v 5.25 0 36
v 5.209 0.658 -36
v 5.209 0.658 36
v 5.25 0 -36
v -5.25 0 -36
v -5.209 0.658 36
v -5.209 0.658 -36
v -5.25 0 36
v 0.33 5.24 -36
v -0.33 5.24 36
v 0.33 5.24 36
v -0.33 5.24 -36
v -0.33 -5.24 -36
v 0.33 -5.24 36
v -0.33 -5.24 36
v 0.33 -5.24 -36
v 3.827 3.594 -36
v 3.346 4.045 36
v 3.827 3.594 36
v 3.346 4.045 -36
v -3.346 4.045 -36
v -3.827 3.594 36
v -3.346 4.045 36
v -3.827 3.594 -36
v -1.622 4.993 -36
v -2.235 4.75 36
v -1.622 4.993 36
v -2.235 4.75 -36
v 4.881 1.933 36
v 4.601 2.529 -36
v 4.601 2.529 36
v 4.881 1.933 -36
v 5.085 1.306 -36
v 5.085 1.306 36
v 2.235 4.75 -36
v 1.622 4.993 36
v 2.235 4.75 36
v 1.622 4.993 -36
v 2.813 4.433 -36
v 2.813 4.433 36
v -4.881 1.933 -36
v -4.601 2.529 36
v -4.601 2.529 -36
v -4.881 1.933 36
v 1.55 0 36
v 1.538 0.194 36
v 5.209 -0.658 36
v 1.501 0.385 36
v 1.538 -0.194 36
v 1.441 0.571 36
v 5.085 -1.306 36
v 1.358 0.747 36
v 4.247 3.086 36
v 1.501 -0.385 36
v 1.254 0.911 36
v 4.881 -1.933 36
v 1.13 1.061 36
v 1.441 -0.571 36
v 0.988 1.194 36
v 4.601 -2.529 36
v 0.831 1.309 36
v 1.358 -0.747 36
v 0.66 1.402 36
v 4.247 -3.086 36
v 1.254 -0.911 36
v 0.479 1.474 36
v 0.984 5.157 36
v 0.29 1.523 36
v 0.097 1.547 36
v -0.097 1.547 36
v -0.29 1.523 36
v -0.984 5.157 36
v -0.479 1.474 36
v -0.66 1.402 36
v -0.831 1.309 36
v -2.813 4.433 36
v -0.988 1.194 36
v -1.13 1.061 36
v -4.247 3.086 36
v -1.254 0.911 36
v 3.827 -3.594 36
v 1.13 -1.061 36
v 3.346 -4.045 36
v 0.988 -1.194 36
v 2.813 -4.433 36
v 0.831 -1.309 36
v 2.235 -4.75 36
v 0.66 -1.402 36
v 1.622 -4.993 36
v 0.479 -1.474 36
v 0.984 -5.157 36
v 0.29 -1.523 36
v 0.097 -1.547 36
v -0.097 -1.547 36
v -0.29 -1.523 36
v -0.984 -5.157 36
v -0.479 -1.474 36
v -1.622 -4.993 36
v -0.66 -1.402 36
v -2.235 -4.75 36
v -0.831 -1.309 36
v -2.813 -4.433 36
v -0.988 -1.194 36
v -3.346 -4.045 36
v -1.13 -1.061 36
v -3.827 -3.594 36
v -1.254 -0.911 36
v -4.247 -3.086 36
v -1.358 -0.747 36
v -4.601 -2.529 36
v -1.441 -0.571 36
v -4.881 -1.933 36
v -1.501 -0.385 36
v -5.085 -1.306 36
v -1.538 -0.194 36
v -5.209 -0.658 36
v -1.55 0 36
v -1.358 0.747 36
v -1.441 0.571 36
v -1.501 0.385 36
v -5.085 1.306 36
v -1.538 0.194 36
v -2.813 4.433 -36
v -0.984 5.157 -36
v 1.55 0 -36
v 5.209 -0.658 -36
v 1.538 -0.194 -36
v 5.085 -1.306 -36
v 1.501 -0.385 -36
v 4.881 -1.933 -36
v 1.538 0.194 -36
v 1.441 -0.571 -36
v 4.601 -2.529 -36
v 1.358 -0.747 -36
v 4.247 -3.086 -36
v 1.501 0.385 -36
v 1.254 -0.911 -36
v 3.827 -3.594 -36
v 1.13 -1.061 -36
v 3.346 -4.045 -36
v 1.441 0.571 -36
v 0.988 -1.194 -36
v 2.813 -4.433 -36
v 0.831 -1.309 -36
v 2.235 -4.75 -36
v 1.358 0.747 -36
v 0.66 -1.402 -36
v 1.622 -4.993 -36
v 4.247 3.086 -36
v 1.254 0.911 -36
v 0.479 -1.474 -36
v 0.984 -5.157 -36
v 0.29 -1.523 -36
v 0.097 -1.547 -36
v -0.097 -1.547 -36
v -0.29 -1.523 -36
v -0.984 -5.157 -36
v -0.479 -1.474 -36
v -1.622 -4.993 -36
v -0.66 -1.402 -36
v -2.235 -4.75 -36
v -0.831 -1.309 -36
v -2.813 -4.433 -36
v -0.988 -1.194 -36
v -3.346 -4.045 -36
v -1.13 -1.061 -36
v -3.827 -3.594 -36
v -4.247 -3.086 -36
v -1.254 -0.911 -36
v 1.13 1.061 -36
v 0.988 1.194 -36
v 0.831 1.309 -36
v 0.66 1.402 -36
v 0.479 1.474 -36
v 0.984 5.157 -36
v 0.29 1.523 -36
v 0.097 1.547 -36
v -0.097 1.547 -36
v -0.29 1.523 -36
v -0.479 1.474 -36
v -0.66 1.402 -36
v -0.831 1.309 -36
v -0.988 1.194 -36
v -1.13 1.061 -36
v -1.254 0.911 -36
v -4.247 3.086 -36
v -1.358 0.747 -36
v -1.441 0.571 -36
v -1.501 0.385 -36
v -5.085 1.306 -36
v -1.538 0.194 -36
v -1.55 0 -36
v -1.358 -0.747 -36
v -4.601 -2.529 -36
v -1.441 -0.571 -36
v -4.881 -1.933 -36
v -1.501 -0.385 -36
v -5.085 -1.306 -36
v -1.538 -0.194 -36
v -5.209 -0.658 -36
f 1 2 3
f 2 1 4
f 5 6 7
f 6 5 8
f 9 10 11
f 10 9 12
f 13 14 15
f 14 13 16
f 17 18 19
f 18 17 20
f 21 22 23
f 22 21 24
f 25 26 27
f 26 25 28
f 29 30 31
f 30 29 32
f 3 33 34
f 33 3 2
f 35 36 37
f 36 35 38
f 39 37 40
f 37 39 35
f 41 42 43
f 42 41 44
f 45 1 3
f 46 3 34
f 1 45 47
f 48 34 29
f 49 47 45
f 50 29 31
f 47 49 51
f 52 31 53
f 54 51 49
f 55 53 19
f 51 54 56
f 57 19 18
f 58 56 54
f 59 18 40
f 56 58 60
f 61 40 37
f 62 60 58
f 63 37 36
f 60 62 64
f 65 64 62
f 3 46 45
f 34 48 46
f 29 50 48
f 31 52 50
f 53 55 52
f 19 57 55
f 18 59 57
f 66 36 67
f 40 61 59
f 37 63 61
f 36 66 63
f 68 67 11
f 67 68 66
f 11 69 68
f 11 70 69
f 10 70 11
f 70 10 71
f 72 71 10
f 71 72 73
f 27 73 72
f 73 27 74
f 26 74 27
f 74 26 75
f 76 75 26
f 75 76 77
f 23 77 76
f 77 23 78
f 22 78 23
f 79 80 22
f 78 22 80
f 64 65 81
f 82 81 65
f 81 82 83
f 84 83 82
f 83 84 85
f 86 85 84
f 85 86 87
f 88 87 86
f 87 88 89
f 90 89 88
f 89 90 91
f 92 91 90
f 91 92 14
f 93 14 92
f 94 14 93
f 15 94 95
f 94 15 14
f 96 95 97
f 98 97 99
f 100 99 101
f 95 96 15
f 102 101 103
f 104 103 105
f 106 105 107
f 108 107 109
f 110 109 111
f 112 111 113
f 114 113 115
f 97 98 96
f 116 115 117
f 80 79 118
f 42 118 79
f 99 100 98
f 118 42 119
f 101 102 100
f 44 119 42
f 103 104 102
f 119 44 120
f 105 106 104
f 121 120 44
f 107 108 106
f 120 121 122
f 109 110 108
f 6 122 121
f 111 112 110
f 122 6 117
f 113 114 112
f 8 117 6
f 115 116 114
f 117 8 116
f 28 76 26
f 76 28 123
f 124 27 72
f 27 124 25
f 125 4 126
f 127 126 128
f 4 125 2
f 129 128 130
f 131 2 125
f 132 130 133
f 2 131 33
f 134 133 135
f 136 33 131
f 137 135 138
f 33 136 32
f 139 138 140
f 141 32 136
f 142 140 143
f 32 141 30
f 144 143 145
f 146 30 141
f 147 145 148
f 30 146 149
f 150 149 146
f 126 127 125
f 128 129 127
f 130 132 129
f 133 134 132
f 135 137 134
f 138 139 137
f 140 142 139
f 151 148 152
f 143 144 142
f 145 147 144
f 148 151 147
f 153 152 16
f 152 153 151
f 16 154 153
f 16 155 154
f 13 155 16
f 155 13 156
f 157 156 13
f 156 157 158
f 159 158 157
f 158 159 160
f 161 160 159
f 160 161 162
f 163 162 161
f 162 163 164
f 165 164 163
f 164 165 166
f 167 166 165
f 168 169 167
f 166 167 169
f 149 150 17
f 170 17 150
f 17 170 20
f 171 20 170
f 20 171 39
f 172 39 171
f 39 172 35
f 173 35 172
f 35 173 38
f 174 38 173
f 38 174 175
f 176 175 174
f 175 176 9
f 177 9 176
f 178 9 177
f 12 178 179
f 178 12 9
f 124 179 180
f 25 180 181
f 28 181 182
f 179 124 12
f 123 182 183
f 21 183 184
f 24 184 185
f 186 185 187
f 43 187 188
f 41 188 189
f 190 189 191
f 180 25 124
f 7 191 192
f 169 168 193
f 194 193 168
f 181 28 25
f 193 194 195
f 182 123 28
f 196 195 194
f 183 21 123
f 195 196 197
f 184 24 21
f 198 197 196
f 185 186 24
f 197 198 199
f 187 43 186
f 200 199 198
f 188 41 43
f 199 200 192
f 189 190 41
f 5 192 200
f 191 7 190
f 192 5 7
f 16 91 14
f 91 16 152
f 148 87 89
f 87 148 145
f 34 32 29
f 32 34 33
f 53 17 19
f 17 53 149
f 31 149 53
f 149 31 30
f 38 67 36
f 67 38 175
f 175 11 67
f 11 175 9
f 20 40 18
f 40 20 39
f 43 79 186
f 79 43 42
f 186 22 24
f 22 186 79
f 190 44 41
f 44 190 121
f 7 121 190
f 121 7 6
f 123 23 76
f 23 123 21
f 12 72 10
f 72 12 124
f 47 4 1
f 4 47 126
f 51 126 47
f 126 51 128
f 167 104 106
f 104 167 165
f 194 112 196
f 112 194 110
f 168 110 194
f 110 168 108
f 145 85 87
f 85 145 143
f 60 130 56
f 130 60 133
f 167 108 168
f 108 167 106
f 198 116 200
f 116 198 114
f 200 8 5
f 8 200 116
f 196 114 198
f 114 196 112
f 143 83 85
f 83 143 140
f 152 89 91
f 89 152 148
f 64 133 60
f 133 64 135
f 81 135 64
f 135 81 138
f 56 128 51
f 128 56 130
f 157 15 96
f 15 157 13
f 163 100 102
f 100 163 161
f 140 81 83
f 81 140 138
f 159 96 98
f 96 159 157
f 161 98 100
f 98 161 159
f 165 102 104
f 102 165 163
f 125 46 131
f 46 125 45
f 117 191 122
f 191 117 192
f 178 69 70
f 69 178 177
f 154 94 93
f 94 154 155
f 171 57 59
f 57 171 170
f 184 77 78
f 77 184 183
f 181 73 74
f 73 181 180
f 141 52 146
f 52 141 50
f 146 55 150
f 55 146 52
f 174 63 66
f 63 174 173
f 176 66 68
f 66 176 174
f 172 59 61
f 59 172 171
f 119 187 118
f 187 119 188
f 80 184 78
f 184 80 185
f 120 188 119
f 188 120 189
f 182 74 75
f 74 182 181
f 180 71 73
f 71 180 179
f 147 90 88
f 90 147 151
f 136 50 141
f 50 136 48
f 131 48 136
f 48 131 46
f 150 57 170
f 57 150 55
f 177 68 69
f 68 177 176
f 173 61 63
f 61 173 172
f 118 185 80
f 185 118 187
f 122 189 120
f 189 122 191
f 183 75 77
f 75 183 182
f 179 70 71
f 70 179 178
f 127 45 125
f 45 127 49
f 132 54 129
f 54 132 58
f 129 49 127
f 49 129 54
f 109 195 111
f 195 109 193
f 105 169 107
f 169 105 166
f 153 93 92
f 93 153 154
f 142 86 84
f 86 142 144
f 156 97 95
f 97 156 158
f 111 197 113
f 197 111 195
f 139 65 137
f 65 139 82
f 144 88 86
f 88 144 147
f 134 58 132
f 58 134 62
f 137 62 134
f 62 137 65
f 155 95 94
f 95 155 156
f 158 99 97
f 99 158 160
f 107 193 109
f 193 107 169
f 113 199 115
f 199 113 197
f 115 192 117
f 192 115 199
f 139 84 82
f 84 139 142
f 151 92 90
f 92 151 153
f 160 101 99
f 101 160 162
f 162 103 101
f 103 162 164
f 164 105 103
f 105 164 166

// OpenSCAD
$fn = 50;


difference() {
	union() {
		translate(v = [0, 0, -36.0000000000]) {
			cylinder(h = 72, r = 5.2500000000);
		}
	}
	union() {
		translate(v = [0, 0, -100.0000000000]) {
			cylinder(h = 200, r = 1.5500000000);
		}
	}
}
